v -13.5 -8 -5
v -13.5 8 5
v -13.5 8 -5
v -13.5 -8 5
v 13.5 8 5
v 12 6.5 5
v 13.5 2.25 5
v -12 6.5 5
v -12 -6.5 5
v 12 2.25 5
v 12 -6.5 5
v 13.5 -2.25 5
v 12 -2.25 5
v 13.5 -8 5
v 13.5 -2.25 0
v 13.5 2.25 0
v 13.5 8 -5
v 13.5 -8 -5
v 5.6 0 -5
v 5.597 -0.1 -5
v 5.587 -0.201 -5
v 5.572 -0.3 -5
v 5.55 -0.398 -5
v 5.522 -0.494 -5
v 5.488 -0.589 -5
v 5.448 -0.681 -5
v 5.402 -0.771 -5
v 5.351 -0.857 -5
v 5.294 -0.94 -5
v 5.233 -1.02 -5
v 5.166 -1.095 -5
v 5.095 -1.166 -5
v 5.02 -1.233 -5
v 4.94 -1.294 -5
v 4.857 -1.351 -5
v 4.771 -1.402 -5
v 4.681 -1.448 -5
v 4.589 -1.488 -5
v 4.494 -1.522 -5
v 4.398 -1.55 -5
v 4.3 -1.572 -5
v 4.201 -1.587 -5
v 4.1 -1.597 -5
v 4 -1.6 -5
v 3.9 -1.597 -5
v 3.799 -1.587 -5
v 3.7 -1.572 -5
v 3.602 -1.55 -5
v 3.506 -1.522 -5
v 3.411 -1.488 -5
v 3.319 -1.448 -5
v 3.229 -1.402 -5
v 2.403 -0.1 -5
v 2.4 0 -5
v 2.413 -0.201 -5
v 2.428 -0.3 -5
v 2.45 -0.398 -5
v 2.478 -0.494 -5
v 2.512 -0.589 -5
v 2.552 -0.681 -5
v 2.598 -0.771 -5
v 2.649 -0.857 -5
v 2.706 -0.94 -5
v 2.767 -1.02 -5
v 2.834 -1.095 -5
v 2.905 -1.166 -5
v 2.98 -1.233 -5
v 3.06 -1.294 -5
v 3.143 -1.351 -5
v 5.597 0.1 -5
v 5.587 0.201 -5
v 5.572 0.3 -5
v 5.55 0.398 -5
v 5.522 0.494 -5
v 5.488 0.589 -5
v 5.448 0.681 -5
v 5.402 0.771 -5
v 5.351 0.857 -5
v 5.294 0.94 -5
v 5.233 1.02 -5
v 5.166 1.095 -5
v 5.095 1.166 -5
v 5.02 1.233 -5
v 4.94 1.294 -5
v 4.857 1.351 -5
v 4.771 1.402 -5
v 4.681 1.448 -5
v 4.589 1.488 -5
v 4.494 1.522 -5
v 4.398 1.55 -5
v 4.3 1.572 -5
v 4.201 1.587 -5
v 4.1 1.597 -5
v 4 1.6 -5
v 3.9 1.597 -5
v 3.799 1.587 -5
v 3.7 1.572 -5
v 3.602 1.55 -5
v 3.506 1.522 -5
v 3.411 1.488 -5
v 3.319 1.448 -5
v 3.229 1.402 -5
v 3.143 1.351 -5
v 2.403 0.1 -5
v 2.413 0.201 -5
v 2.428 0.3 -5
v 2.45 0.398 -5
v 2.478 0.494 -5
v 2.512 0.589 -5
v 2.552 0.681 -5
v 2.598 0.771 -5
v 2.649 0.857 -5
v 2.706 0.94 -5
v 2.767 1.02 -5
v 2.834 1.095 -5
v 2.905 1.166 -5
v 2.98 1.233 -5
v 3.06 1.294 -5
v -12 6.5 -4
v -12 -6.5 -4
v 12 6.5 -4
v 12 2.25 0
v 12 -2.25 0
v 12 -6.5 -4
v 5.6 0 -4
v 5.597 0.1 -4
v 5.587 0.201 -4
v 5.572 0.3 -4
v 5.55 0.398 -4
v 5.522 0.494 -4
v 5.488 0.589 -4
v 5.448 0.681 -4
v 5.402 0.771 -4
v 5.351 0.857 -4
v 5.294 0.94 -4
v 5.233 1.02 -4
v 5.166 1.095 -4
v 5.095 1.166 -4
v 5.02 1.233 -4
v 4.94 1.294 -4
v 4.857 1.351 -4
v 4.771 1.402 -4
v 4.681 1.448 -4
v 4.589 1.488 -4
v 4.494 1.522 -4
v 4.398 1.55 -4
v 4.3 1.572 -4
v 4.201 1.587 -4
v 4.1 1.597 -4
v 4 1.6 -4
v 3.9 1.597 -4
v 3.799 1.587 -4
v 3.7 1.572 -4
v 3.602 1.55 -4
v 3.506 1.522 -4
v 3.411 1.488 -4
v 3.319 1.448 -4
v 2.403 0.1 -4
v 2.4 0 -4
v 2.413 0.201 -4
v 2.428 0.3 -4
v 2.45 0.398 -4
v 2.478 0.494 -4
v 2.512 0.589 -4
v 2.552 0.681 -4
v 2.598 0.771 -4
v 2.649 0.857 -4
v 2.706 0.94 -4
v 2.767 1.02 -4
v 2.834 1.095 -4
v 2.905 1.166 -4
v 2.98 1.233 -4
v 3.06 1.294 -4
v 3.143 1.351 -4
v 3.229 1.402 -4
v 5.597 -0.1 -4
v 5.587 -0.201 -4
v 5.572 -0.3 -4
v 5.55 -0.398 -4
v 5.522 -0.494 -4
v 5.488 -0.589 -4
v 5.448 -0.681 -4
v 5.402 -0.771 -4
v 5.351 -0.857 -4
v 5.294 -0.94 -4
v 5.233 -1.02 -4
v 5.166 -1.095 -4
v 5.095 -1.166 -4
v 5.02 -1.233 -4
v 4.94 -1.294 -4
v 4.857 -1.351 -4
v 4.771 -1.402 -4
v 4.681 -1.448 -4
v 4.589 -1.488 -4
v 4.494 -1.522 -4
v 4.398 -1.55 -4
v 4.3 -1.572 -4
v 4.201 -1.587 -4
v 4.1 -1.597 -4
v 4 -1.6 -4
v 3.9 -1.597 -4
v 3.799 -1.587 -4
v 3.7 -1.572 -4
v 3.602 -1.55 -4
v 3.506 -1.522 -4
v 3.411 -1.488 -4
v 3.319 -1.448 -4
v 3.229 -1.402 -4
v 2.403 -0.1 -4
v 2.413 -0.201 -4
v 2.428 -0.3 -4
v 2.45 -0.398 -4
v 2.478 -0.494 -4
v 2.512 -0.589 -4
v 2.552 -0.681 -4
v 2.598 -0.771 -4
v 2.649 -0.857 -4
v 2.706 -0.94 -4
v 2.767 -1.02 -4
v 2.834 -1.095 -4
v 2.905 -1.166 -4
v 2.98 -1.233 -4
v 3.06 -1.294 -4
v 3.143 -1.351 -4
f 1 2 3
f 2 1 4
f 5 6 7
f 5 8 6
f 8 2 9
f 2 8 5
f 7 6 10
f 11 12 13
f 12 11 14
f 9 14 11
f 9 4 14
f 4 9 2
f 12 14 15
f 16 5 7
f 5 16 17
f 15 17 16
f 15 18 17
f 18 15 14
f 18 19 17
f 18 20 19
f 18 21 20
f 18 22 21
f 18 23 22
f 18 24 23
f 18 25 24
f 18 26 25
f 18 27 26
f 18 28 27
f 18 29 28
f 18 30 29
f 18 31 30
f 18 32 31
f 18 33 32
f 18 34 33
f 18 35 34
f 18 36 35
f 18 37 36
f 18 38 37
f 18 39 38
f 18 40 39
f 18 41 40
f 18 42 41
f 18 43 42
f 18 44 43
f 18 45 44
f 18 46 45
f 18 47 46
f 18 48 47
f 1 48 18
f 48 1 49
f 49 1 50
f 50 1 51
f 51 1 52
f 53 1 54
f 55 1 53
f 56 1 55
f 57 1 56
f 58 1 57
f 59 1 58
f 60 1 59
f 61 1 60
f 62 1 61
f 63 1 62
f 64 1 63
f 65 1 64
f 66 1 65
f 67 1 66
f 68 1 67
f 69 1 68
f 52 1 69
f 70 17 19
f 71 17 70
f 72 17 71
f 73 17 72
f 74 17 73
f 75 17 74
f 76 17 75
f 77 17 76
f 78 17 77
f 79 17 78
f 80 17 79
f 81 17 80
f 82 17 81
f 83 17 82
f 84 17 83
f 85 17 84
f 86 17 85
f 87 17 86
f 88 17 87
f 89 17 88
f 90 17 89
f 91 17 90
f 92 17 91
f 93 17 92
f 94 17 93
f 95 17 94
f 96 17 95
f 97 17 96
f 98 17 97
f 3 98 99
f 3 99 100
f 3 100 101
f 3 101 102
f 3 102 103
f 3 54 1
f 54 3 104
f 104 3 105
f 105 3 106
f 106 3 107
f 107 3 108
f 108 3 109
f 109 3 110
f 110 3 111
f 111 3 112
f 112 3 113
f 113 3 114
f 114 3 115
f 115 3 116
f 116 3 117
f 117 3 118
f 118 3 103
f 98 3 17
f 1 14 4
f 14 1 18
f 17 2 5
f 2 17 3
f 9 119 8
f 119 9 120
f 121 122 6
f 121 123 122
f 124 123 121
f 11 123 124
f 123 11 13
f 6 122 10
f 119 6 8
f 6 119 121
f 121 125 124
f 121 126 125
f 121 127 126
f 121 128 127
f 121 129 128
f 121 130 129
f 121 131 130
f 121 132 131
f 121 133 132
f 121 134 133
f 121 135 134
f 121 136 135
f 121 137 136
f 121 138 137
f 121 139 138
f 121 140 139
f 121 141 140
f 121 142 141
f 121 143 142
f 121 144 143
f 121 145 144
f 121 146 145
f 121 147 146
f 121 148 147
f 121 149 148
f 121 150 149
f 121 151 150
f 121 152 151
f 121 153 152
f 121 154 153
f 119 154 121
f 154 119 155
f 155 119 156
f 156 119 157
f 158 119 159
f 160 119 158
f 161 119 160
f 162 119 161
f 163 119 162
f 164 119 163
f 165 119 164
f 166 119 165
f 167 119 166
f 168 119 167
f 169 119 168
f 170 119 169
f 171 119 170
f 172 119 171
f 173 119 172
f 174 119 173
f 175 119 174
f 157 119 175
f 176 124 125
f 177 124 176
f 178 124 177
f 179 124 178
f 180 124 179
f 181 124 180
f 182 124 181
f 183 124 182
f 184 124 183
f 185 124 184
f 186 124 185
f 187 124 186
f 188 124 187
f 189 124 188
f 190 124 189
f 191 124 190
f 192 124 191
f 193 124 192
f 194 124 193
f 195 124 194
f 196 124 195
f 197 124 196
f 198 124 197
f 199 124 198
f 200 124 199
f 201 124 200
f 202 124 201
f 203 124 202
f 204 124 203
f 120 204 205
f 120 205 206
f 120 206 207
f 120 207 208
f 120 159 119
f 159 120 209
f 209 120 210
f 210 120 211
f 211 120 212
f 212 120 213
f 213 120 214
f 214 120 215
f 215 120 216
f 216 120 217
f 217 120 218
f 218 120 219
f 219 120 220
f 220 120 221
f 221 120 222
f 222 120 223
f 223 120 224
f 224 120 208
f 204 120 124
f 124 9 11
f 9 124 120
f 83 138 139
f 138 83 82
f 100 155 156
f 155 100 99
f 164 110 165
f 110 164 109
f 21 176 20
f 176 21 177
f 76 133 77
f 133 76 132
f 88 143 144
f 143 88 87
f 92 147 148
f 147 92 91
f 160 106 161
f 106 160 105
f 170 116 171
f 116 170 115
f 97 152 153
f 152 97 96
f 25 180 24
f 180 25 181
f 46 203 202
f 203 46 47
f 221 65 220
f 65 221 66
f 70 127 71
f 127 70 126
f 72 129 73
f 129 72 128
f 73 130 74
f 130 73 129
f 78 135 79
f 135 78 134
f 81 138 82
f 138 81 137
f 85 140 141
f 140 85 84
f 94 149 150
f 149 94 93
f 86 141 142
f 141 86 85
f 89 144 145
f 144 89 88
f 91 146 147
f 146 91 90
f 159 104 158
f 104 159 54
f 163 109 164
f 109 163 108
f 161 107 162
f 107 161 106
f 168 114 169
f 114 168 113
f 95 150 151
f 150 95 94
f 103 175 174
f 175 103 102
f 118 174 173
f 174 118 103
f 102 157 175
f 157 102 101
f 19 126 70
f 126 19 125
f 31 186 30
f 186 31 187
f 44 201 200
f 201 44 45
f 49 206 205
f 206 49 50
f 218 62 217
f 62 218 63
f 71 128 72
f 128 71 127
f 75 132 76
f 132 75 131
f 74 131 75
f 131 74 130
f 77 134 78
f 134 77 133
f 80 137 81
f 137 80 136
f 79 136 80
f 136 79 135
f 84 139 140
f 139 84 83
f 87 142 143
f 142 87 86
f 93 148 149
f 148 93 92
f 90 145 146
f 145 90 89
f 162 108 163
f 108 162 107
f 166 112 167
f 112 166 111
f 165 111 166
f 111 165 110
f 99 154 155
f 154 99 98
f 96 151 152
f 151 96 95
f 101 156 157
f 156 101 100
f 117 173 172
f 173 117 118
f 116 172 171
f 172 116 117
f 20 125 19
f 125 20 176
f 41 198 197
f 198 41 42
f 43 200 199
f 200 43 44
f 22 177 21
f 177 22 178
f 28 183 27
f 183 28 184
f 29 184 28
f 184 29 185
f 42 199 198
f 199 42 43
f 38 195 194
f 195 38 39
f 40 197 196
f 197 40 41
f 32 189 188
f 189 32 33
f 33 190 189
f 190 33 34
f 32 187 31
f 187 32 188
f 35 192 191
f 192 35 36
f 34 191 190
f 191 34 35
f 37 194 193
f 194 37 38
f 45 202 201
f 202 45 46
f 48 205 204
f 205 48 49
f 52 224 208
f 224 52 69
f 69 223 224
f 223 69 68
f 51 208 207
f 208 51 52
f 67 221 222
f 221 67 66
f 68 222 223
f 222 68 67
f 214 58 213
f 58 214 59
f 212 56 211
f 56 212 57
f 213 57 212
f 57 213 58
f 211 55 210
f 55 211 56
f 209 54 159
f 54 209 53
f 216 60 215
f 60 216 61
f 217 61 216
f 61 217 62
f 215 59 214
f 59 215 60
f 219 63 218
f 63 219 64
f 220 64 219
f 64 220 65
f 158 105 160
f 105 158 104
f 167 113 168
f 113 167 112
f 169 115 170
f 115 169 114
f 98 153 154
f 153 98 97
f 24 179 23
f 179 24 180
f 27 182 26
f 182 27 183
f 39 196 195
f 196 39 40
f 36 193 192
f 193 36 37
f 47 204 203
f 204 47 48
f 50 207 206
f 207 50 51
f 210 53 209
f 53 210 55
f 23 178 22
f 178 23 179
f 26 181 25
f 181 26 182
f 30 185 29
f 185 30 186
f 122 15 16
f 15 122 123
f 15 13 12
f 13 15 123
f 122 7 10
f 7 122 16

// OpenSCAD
length = 23.5+0.5;
width = 12.5+0.5;
height = 10;
wall_thickness = 1.5;
base_thickness = 1.0;
hole_width = 3.2;
notch_width = 4.5;
notch_height = 4.0;
$fn=100;

difference() {
    cube([length+wall_thickness*2,width+wall_thickness*2,height], center=true);
    translate([0,0,base_thickness]) cube([length,width,height],center=true);
    translate([4,0,0]) cylinder(h=height*2,d=hole_width, center=true);
    translate([4,0,base_thickness+notch_height]) cube([length,notch_width,height], center=true);
}
